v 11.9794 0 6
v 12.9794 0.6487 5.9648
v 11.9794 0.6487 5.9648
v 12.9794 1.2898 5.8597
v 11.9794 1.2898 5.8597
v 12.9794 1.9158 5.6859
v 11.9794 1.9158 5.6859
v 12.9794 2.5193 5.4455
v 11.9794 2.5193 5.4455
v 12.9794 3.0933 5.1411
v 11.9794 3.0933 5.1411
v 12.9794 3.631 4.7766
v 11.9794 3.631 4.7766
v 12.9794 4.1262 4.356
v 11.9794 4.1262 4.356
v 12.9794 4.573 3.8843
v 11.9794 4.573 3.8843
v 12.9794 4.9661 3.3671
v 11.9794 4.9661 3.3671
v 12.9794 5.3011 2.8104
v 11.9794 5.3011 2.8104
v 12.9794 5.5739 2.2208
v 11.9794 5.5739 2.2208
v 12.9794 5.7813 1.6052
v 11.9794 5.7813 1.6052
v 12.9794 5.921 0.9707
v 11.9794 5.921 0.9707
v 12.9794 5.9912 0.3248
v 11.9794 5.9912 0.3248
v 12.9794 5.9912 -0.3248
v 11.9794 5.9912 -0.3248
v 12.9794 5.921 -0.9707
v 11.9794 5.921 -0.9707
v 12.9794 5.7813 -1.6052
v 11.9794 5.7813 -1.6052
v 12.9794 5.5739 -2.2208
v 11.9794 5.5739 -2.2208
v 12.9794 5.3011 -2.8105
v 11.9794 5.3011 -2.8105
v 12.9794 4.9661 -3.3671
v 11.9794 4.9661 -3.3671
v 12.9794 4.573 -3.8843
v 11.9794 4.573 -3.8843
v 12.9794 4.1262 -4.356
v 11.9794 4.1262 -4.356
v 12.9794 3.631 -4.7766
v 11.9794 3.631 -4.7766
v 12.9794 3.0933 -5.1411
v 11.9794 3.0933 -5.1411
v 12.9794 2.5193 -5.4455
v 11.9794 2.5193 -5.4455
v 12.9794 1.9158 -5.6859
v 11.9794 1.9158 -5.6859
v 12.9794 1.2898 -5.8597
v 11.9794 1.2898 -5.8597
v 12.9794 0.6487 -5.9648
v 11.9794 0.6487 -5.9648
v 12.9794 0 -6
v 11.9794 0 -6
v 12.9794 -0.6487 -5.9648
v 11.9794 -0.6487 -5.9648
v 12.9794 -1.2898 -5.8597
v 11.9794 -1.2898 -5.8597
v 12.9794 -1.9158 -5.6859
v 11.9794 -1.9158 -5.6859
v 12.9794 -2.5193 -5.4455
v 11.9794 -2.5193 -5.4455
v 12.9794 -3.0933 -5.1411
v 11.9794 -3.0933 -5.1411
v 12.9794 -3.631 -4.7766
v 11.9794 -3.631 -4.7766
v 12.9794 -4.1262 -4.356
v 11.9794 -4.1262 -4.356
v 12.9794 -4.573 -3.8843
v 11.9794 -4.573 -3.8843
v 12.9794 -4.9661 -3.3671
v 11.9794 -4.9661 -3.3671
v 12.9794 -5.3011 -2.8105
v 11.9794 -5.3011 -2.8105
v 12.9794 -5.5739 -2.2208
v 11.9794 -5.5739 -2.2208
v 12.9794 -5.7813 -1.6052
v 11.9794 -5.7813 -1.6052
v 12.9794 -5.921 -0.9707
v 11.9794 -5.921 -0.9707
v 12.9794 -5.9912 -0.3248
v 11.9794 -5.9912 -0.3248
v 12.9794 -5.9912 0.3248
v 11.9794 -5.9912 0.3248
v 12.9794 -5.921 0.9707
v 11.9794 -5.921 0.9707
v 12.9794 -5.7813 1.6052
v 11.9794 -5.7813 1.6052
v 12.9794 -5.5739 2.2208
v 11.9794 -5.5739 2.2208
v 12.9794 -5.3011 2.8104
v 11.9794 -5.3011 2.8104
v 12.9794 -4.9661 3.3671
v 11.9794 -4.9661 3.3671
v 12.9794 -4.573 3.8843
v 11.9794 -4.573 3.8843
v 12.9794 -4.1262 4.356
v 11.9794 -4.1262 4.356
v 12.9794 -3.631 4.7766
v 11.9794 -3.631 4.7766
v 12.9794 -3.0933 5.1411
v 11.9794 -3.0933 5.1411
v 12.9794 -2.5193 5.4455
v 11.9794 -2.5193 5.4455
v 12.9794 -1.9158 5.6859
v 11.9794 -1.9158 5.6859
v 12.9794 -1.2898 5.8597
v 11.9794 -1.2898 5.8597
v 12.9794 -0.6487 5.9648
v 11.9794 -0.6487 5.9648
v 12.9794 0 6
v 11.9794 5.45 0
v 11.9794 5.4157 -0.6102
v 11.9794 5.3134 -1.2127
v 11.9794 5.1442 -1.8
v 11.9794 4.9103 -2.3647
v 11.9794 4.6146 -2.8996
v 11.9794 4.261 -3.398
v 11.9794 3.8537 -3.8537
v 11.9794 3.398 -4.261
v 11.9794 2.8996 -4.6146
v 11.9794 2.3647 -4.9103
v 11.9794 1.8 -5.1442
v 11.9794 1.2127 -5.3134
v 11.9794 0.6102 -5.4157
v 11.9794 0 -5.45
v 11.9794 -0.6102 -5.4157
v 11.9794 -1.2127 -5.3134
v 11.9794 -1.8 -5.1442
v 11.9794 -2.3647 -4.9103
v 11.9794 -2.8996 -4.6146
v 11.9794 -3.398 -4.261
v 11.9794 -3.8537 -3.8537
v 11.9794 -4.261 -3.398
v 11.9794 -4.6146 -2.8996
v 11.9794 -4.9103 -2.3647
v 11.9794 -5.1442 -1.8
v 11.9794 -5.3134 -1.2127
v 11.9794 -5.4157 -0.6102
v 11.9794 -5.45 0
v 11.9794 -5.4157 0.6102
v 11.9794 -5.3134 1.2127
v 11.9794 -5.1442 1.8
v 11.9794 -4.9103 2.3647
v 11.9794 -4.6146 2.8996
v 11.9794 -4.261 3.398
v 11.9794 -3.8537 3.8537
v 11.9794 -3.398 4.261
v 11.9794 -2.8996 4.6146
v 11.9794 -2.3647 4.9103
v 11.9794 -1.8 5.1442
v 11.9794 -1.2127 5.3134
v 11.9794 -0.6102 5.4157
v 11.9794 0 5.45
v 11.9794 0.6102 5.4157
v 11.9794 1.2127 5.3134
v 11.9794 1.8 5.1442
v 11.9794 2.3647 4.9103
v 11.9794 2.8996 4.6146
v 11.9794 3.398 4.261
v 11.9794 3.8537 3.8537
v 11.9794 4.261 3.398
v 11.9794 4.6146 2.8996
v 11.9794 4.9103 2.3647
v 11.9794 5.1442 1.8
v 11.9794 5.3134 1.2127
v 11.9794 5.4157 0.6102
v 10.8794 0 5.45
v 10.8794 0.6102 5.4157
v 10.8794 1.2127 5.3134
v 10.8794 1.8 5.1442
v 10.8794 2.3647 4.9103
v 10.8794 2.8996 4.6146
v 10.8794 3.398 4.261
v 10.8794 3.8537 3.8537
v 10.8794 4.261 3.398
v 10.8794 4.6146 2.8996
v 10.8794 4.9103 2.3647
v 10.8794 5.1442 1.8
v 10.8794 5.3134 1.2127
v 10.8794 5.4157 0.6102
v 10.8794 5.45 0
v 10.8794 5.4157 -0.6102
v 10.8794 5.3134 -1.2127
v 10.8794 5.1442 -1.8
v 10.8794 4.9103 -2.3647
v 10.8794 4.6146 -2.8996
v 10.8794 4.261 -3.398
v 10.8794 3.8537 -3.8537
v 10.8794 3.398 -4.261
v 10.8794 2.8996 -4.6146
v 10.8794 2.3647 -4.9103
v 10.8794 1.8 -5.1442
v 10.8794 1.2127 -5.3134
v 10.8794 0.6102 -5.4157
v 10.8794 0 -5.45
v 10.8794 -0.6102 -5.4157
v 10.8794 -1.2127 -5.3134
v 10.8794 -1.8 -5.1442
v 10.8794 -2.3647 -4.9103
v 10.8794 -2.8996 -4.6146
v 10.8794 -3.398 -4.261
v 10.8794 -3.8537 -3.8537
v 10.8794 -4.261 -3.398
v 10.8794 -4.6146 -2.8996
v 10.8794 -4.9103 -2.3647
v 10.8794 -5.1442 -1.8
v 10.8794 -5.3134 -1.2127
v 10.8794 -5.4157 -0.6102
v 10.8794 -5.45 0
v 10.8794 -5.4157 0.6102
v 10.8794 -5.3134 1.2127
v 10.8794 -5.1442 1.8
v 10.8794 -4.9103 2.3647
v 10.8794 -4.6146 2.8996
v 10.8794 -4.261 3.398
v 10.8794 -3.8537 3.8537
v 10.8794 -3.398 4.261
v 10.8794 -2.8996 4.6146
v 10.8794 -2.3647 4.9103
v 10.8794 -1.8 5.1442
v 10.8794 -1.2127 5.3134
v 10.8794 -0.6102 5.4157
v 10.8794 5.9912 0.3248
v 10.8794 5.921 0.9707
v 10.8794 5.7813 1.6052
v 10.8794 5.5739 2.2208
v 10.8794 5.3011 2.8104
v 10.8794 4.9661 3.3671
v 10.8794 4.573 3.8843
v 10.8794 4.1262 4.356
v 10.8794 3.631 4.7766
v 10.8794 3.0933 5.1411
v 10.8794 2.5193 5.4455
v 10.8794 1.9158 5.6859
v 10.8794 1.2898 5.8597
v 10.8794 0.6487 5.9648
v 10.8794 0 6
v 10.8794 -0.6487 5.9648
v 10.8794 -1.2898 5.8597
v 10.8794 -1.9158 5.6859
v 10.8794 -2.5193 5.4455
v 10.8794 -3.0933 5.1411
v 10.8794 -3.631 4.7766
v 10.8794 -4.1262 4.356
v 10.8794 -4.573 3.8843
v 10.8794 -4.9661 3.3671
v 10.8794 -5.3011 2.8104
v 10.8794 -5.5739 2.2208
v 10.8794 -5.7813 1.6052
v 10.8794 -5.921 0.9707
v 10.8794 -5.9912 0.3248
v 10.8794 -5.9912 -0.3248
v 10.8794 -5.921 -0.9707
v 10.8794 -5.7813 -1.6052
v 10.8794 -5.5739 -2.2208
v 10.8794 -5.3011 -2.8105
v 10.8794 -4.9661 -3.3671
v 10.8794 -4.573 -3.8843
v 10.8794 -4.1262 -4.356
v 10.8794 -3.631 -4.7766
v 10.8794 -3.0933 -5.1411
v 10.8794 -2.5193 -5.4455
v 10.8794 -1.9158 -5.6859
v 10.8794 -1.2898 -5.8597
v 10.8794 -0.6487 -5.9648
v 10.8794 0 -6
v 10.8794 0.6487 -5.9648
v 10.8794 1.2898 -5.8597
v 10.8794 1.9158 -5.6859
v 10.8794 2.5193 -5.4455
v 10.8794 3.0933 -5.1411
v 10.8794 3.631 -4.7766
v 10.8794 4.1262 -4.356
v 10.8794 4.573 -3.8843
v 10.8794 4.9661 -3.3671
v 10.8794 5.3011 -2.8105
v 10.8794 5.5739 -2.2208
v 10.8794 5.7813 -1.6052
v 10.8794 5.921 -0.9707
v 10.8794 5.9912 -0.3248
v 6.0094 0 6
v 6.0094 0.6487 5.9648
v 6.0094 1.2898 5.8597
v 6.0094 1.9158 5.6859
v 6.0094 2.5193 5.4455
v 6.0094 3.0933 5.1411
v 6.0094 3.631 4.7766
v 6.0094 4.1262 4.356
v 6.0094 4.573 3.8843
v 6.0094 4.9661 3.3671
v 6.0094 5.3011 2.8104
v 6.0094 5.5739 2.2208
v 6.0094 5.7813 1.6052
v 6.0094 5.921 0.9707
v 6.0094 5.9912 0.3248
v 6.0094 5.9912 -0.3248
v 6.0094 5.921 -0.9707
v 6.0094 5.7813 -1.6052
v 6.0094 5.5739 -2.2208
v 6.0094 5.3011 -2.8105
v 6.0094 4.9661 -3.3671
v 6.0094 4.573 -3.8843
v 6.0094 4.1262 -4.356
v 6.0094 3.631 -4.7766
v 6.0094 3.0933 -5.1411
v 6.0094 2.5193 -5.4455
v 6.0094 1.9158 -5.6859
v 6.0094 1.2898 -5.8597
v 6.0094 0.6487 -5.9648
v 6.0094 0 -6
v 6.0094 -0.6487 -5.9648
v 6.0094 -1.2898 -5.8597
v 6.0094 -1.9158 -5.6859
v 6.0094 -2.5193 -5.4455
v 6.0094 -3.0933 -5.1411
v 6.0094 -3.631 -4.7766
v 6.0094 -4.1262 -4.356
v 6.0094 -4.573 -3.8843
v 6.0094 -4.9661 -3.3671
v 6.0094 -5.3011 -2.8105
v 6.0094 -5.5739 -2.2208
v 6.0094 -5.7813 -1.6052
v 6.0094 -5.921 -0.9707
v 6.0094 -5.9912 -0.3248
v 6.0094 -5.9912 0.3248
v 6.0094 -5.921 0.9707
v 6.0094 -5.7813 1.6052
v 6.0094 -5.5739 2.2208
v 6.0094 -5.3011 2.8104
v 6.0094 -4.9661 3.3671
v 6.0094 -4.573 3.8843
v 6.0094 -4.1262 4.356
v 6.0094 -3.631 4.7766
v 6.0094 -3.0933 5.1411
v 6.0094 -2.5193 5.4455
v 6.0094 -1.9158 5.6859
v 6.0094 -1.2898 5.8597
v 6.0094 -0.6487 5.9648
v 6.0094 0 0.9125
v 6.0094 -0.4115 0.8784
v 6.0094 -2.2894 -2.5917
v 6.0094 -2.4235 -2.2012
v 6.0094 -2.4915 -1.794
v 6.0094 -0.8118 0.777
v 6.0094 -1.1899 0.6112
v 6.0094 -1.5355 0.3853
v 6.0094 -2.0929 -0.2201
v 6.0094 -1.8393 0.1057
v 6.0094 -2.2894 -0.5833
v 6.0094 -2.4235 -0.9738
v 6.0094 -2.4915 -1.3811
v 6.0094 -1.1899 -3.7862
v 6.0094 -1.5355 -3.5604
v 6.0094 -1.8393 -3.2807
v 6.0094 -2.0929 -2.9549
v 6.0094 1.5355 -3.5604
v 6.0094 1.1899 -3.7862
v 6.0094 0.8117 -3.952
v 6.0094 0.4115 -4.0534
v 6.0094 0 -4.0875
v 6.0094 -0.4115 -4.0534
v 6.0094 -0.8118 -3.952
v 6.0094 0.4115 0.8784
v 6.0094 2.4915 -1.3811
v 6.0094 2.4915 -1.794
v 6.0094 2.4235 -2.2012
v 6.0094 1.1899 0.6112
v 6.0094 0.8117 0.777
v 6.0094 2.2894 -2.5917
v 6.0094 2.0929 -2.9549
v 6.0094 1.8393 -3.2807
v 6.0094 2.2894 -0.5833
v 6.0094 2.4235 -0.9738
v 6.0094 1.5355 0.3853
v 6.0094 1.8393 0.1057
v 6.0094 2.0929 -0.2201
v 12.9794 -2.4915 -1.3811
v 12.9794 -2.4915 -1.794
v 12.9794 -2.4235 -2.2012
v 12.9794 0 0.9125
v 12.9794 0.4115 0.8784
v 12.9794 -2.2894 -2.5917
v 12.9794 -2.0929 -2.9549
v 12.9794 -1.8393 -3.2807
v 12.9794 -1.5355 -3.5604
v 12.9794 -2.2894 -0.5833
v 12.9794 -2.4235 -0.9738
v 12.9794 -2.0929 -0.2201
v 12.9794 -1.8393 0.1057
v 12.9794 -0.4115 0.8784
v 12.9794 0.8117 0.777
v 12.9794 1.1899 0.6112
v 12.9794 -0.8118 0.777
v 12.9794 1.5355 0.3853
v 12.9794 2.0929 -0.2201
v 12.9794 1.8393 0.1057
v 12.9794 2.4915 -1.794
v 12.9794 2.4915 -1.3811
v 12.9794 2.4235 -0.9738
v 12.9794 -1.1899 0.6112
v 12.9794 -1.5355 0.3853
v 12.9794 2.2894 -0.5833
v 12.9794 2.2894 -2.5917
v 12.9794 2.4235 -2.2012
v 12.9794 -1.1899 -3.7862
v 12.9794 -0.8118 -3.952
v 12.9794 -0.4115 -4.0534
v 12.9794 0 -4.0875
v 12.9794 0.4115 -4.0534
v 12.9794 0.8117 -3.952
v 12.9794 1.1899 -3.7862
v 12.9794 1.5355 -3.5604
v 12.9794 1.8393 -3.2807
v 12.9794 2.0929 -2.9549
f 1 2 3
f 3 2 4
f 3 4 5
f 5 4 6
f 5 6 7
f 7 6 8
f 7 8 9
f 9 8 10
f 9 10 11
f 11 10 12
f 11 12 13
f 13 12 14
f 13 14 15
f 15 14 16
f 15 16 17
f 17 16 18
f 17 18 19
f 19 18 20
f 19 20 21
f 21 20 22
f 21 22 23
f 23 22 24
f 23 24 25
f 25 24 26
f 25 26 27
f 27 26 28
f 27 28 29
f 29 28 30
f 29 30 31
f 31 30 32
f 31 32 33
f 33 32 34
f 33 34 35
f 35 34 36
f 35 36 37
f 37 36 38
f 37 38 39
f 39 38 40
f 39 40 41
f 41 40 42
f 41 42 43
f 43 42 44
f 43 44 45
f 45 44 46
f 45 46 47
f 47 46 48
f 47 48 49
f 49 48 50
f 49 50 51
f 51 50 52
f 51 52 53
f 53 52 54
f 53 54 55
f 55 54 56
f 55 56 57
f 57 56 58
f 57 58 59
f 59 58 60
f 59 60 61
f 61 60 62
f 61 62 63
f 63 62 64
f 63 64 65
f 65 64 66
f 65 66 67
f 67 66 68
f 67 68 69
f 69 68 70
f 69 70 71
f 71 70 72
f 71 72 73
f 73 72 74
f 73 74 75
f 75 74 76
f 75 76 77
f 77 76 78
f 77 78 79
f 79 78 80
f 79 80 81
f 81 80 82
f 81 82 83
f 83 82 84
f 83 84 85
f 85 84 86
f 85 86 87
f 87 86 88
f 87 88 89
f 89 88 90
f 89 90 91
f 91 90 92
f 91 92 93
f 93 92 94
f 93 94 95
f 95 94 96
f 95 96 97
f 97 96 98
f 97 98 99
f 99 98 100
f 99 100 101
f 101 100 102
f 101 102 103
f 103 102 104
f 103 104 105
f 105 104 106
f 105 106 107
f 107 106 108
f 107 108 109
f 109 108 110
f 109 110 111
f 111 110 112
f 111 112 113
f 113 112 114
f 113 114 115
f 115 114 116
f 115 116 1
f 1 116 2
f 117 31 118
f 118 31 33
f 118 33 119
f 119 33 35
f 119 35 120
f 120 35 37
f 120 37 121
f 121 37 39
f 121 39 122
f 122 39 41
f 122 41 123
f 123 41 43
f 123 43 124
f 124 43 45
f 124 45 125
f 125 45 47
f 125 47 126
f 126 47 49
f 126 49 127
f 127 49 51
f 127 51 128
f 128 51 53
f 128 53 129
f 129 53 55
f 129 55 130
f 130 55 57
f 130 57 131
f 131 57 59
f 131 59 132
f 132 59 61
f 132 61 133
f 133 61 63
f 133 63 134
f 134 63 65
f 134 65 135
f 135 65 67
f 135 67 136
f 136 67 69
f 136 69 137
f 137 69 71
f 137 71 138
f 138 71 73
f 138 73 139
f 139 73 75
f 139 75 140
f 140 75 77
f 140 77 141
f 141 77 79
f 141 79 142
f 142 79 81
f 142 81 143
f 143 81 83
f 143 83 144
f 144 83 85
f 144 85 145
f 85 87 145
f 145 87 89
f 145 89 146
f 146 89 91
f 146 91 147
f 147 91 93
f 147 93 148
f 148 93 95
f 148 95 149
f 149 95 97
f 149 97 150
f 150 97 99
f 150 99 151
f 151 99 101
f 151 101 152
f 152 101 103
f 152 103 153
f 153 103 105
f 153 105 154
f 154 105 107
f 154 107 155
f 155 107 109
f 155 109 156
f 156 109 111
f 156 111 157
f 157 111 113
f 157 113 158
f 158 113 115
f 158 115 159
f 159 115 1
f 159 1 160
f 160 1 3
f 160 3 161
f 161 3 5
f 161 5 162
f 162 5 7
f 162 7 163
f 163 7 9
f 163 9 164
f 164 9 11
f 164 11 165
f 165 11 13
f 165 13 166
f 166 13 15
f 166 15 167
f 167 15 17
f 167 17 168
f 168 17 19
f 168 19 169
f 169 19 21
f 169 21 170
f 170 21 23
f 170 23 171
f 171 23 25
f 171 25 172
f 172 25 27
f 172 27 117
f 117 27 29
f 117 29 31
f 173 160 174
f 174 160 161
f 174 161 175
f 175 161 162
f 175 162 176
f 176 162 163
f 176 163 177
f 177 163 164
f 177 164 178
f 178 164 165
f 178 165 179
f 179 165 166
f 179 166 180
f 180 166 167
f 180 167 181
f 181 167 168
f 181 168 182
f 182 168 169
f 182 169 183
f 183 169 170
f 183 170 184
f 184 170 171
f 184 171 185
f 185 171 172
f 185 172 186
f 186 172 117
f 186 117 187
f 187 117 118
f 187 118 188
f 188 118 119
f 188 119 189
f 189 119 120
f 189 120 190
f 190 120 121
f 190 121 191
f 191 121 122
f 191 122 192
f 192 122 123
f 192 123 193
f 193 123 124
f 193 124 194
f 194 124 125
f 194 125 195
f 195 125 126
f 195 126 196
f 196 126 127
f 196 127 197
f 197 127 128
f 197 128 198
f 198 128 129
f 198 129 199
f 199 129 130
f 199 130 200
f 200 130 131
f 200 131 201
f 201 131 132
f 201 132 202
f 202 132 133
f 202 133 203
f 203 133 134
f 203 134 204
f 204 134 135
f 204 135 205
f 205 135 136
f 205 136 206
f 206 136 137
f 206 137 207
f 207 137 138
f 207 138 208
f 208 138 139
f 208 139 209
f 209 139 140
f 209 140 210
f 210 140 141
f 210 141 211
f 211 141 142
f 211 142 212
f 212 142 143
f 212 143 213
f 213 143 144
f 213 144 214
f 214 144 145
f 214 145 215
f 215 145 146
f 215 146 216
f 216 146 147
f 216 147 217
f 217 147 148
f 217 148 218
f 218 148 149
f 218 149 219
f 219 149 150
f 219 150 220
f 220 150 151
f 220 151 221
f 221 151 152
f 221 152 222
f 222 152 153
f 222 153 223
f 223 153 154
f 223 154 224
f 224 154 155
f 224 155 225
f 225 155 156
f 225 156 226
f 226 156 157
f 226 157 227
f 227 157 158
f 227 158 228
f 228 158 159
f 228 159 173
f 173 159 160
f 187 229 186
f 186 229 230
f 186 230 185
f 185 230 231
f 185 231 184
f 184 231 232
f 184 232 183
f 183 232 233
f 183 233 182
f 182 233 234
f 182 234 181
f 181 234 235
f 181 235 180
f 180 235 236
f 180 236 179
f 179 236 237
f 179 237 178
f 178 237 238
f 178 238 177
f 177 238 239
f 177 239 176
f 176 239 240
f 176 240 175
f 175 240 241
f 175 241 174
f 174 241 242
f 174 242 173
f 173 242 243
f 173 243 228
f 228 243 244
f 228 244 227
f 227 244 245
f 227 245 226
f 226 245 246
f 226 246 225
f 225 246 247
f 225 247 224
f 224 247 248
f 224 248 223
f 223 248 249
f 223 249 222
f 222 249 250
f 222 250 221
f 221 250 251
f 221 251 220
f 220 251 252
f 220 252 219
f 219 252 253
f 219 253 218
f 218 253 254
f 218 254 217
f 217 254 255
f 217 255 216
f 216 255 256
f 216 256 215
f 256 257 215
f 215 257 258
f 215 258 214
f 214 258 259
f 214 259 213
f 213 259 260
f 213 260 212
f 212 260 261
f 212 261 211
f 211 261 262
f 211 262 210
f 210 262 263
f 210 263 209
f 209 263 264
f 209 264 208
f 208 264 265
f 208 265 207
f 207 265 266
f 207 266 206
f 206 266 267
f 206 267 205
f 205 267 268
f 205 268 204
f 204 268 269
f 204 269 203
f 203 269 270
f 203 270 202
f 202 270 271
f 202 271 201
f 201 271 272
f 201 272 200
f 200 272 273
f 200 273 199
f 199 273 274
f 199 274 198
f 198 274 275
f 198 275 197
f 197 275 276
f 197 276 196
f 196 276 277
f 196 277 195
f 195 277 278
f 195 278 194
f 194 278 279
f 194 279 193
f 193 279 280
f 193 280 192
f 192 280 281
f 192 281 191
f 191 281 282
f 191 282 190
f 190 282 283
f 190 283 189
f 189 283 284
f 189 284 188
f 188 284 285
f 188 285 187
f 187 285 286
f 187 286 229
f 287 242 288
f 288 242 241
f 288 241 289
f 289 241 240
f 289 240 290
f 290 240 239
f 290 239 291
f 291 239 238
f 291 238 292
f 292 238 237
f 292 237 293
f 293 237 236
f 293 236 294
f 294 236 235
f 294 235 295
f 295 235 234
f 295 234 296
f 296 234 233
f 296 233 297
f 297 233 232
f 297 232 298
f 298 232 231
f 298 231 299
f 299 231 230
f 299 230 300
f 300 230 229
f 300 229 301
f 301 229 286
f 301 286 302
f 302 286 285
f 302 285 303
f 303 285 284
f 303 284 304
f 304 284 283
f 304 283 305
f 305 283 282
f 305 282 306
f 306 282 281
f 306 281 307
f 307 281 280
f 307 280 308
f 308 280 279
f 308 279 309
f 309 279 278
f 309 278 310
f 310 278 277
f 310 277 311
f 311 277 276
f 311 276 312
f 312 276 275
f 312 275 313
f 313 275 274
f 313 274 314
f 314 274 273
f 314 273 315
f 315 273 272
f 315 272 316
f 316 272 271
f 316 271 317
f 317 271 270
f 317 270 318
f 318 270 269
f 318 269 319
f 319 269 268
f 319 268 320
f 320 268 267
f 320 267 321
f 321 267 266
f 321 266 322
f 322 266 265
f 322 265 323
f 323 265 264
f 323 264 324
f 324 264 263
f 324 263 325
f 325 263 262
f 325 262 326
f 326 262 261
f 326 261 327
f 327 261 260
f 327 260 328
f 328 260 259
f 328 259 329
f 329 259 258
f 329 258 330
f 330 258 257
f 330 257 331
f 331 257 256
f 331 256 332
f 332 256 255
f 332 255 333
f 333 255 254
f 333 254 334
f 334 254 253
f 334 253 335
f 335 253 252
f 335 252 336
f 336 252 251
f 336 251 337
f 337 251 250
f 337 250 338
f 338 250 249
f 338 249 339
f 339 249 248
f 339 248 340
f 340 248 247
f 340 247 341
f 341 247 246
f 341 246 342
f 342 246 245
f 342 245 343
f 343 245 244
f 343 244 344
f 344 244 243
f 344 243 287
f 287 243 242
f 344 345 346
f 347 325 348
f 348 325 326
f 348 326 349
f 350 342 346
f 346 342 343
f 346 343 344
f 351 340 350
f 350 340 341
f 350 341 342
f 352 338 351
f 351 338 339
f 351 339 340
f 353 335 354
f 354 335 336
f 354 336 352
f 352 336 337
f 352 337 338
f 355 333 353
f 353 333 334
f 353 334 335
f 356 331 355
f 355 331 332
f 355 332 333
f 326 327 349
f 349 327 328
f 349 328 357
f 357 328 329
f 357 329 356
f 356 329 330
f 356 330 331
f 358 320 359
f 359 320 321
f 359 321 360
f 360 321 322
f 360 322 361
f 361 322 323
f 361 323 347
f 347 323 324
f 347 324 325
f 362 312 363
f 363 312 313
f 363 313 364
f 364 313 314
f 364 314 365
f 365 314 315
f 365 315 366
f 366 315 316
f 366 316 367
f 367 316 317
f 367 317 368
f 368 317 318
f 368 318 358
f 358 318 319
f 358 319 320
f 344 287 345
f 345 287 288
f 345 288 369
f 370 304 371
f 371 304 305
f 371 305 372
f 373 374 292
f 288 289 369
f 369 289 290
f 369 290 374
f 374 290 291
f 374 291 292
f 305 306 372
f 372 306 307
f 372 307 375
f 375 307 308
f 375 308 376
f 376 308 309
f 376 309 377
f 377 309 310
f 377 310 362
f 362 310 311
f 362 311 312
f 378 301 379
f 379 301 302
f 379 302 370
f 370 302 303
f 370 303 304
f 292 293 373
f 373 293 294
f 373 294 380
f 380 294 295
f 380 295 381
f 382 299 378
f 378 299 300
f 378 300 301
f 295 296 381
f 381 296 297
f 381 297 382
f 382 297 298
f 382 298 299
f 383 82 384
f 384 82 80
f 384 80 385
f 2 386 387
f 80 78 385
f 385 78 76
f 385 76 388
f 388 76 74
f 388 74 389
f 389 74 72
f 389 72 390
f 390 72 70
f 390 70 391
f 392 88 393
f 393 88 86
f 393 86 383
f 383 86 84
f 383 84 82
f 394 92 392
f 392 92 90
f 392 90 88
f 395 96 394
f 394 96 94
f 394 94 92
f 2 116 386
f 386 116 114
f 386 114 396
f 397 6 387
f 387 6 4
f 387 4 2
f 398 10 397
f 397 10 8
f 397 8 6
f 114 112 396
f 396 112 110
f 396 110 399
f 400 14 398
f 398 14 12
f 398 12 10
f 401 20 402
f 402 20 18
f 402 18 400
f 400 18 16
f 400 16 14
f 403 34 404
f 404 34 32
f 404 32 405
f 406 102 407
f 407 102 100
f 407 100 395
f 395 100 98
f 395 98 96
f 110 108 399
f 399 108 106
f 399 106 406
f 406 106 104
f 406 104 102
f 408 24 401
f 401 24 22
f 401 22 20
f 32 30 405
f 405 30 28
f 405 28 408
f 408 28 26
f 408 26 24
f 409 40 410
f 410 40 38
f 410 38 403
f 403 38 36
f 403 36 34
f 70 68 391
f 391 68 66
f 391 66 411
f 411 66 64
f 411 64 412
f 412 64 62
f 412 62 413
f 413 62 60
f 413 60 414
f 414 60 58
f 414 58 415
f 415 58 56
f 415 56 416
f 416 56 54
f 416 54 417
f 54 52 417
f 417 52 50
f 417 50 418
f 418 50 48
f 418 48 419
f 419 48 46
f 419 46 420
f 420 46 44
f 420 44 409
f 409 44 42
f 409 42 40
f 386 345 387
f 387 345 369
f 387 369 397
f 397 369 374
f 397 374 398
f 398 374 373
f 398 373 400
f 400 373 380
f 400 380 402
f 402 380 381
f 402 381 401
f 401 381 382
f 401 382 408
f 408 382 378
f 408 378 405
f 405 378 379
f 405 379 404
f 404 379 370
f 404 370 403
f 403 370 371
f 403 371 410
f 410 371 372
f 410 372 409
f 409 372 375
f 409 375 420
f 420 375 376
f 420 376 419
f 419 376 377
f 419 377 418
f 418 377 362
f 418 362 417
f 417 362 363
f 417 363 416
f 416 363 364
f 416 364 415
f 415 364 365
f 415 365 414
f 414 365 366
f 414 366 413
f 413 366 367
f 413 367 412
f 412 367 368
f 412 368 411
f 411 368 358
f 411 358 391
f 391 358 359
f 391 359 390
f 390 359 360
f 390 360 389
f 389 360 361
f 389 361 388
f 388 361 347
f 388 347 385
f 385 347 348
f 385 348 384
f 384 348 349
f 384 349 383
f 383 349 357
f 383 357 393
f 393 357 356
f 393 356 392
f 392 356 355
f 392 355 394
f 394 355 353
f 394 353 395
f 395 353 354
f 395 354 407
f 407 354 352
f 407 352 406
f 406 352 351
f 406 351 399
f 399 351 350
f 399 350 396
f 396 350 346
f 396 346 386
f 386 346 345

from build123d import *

# Parameters (mm, degrees)
SKETCH5_R          = 2.499999953
CUT_EXTRUDE1_DEPTH = 13.979399746


with BuildPart() as part:
    # Sketch3 → Revolve1 (revolve)
    with BuildSketch(Plane.XY):
        Polygon((12.979399746, 2.999999969), (12.979399746, 2.499999953), (12.979399746, 0), (6.009399716, 0), (6.009399716, 2.499999953), (6.009399716, 5.999999938), (9.97939965, 5.999999938), (10.879399628, 5.999999938), (10.879399628, 5.450000022), (11.979399714, 5.450000022), (11.979399714, 5.999999938), (12.979399746, 5.999999938), align=None)
    revolve(axis=Axis((6.009399716, 0, 0), (1, 0, 0)))

    # Sketch5 → Cut-Extrude1 (cut, through all)
    with BuildSketch(Plane(origin=(0, 0, 0), x_dir=(0, 0, -1), z_dir=(1, 0, 0))):
        with Locations((1.5875, 0)):
            Circle(SKETCH5_R)
    extrude(amount=CUT_EXTRUDE1_DEPTH, mode=Mode.SUBTRACT)


solid = part.part
